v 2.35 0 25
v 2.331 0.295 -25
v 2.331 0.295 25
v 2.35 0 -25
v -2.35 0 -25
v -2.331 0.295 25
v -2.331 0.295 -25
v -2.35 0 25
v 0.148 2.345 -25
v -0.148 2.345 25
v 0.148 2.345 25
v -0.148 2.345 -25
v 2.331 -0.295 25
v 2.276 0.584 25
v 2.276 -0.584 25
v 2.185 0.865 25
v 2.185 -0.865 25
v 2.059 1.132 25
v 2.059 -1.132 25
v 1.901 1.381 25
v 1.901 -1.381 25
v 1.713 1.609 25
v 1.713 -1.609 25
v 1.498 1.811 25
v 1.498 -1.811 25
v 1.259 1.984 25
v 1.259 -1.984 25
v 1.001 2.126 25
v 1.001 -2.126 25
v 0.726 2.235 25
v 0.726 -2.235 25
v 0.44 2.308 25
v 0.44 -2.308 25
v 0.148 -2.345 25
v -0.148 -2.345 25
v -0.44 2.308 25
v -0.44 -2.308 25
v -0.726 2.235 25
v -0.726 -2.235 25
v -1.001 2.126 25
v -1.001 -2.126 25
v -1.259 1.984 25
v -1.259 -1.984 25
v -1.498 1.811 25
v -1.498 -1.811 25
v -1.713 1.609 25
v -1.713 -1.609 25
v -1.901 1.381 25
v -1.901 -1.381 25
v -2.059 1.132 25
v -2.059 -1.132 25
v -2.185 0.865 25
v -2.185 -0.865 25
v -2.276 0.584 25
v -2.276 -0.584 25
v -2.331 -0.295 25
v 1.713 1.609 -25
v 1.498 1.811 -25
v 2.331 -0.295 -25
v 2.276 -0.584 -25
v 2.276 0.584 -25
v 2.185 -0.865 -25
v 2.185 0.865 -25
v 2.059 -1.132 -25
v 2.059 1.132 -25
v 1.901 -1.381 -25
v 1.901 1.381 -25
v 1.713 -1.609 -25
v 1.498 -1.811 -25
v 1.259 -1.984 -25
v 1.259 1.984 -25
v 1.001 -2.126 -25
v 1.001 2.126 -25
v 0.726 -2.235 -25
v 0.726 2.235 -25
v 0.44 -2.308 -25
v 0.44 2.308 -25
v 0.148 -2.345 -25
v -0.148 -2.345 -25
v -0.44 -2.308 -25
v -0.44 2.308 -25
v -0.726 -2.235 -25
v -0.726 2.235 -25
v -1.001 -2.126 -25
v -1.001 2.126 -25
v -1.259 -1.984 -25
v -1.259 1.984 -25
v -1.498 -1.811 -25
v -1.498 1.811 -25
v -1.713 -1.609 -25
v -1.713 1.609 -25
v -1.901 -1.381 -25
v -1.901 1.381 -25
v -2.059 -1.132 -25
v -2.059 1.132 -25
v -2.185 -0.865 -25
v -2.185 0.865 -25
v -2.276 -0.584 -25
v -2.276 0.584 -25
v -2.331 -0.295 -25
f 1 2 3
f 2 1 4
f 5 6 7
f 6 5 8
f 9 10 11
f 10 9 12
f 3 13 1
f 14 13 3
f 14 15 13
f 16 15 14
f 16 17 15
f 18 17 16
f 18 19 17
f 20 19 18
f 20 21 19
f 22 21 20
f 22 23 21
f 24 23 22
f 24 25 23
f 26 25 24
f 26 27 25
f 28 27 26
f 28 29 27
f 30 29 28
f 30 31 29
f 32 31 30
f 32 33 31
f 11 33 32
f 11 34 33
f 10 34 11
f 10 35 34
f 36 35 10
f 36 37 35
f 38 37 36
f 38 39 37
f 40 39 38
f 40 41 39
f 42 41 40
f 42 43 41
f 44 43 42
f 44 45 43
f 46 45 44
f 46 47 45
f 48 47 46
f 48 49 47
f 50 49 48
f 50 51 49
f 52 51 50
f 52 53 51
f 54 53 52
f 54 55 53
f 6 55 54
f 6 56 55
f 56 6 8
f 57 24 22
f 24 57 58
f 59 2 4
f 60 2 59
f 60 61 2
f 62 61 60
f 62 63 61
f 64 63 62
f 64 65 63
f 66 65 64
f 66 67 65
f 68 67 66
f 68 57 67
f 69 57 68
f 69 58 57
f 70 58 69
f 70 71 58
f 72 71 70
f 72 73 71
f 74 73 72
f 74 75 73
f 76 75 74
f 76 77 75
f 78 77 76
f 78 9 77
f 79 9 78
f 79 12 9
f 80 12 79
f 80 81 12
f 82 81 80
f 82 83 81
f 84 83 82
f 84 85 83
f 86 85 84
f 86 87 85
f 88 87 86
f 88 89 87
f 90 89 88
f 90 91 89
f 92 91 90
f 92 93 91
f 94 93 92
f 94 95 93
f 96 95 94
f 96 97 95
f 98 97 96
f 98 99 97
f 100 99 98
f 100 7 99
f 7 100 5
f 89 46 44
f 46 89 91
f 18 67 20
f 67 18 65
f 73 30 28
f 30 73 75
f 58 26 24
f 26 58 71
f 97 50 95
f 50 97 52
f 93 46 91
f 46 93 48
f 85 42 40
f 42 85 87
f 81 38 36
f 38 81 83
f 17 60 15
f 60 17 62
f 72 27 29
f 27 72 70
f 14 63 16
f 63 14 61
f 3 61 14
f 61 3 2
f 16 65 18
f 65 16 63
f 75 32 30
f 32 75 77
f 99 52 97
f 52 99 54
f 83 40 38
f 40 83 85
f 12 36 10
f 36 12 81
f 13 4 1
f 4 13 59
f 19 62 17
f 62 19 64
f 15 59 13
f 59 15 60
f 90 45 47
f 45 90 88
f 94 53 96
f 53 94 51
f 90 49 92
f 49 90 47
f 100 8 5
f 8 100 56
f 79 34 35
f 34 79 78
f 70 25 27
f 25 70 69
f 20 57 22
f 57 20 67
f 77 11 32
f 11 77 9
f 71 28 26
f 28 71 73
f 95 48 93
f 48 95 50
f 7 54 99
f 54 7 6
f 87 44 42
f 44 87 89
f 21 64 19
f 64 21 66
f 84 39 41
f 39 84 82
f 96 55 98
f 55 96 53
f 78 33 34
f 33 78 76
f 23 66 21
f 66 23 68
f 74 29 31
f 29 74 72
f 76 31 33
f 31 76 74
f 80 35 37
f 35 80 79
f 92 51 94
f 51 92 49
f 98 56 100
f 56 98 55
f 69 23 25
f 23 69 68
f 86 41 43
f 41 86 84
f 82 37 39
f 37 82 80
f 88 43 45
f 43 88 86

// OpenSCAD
$fn = 50;


difference() {
	union() {
		translate(v = [0, 0, -25.0000000000]) {
			cylinder(h = 50, r = 2.3500000000);
		}
	}
	union() {
		translate(v = [0, 0, -100.0000000000]) {
			cylinder(h = 200, r = 0);
		}
	}
}
